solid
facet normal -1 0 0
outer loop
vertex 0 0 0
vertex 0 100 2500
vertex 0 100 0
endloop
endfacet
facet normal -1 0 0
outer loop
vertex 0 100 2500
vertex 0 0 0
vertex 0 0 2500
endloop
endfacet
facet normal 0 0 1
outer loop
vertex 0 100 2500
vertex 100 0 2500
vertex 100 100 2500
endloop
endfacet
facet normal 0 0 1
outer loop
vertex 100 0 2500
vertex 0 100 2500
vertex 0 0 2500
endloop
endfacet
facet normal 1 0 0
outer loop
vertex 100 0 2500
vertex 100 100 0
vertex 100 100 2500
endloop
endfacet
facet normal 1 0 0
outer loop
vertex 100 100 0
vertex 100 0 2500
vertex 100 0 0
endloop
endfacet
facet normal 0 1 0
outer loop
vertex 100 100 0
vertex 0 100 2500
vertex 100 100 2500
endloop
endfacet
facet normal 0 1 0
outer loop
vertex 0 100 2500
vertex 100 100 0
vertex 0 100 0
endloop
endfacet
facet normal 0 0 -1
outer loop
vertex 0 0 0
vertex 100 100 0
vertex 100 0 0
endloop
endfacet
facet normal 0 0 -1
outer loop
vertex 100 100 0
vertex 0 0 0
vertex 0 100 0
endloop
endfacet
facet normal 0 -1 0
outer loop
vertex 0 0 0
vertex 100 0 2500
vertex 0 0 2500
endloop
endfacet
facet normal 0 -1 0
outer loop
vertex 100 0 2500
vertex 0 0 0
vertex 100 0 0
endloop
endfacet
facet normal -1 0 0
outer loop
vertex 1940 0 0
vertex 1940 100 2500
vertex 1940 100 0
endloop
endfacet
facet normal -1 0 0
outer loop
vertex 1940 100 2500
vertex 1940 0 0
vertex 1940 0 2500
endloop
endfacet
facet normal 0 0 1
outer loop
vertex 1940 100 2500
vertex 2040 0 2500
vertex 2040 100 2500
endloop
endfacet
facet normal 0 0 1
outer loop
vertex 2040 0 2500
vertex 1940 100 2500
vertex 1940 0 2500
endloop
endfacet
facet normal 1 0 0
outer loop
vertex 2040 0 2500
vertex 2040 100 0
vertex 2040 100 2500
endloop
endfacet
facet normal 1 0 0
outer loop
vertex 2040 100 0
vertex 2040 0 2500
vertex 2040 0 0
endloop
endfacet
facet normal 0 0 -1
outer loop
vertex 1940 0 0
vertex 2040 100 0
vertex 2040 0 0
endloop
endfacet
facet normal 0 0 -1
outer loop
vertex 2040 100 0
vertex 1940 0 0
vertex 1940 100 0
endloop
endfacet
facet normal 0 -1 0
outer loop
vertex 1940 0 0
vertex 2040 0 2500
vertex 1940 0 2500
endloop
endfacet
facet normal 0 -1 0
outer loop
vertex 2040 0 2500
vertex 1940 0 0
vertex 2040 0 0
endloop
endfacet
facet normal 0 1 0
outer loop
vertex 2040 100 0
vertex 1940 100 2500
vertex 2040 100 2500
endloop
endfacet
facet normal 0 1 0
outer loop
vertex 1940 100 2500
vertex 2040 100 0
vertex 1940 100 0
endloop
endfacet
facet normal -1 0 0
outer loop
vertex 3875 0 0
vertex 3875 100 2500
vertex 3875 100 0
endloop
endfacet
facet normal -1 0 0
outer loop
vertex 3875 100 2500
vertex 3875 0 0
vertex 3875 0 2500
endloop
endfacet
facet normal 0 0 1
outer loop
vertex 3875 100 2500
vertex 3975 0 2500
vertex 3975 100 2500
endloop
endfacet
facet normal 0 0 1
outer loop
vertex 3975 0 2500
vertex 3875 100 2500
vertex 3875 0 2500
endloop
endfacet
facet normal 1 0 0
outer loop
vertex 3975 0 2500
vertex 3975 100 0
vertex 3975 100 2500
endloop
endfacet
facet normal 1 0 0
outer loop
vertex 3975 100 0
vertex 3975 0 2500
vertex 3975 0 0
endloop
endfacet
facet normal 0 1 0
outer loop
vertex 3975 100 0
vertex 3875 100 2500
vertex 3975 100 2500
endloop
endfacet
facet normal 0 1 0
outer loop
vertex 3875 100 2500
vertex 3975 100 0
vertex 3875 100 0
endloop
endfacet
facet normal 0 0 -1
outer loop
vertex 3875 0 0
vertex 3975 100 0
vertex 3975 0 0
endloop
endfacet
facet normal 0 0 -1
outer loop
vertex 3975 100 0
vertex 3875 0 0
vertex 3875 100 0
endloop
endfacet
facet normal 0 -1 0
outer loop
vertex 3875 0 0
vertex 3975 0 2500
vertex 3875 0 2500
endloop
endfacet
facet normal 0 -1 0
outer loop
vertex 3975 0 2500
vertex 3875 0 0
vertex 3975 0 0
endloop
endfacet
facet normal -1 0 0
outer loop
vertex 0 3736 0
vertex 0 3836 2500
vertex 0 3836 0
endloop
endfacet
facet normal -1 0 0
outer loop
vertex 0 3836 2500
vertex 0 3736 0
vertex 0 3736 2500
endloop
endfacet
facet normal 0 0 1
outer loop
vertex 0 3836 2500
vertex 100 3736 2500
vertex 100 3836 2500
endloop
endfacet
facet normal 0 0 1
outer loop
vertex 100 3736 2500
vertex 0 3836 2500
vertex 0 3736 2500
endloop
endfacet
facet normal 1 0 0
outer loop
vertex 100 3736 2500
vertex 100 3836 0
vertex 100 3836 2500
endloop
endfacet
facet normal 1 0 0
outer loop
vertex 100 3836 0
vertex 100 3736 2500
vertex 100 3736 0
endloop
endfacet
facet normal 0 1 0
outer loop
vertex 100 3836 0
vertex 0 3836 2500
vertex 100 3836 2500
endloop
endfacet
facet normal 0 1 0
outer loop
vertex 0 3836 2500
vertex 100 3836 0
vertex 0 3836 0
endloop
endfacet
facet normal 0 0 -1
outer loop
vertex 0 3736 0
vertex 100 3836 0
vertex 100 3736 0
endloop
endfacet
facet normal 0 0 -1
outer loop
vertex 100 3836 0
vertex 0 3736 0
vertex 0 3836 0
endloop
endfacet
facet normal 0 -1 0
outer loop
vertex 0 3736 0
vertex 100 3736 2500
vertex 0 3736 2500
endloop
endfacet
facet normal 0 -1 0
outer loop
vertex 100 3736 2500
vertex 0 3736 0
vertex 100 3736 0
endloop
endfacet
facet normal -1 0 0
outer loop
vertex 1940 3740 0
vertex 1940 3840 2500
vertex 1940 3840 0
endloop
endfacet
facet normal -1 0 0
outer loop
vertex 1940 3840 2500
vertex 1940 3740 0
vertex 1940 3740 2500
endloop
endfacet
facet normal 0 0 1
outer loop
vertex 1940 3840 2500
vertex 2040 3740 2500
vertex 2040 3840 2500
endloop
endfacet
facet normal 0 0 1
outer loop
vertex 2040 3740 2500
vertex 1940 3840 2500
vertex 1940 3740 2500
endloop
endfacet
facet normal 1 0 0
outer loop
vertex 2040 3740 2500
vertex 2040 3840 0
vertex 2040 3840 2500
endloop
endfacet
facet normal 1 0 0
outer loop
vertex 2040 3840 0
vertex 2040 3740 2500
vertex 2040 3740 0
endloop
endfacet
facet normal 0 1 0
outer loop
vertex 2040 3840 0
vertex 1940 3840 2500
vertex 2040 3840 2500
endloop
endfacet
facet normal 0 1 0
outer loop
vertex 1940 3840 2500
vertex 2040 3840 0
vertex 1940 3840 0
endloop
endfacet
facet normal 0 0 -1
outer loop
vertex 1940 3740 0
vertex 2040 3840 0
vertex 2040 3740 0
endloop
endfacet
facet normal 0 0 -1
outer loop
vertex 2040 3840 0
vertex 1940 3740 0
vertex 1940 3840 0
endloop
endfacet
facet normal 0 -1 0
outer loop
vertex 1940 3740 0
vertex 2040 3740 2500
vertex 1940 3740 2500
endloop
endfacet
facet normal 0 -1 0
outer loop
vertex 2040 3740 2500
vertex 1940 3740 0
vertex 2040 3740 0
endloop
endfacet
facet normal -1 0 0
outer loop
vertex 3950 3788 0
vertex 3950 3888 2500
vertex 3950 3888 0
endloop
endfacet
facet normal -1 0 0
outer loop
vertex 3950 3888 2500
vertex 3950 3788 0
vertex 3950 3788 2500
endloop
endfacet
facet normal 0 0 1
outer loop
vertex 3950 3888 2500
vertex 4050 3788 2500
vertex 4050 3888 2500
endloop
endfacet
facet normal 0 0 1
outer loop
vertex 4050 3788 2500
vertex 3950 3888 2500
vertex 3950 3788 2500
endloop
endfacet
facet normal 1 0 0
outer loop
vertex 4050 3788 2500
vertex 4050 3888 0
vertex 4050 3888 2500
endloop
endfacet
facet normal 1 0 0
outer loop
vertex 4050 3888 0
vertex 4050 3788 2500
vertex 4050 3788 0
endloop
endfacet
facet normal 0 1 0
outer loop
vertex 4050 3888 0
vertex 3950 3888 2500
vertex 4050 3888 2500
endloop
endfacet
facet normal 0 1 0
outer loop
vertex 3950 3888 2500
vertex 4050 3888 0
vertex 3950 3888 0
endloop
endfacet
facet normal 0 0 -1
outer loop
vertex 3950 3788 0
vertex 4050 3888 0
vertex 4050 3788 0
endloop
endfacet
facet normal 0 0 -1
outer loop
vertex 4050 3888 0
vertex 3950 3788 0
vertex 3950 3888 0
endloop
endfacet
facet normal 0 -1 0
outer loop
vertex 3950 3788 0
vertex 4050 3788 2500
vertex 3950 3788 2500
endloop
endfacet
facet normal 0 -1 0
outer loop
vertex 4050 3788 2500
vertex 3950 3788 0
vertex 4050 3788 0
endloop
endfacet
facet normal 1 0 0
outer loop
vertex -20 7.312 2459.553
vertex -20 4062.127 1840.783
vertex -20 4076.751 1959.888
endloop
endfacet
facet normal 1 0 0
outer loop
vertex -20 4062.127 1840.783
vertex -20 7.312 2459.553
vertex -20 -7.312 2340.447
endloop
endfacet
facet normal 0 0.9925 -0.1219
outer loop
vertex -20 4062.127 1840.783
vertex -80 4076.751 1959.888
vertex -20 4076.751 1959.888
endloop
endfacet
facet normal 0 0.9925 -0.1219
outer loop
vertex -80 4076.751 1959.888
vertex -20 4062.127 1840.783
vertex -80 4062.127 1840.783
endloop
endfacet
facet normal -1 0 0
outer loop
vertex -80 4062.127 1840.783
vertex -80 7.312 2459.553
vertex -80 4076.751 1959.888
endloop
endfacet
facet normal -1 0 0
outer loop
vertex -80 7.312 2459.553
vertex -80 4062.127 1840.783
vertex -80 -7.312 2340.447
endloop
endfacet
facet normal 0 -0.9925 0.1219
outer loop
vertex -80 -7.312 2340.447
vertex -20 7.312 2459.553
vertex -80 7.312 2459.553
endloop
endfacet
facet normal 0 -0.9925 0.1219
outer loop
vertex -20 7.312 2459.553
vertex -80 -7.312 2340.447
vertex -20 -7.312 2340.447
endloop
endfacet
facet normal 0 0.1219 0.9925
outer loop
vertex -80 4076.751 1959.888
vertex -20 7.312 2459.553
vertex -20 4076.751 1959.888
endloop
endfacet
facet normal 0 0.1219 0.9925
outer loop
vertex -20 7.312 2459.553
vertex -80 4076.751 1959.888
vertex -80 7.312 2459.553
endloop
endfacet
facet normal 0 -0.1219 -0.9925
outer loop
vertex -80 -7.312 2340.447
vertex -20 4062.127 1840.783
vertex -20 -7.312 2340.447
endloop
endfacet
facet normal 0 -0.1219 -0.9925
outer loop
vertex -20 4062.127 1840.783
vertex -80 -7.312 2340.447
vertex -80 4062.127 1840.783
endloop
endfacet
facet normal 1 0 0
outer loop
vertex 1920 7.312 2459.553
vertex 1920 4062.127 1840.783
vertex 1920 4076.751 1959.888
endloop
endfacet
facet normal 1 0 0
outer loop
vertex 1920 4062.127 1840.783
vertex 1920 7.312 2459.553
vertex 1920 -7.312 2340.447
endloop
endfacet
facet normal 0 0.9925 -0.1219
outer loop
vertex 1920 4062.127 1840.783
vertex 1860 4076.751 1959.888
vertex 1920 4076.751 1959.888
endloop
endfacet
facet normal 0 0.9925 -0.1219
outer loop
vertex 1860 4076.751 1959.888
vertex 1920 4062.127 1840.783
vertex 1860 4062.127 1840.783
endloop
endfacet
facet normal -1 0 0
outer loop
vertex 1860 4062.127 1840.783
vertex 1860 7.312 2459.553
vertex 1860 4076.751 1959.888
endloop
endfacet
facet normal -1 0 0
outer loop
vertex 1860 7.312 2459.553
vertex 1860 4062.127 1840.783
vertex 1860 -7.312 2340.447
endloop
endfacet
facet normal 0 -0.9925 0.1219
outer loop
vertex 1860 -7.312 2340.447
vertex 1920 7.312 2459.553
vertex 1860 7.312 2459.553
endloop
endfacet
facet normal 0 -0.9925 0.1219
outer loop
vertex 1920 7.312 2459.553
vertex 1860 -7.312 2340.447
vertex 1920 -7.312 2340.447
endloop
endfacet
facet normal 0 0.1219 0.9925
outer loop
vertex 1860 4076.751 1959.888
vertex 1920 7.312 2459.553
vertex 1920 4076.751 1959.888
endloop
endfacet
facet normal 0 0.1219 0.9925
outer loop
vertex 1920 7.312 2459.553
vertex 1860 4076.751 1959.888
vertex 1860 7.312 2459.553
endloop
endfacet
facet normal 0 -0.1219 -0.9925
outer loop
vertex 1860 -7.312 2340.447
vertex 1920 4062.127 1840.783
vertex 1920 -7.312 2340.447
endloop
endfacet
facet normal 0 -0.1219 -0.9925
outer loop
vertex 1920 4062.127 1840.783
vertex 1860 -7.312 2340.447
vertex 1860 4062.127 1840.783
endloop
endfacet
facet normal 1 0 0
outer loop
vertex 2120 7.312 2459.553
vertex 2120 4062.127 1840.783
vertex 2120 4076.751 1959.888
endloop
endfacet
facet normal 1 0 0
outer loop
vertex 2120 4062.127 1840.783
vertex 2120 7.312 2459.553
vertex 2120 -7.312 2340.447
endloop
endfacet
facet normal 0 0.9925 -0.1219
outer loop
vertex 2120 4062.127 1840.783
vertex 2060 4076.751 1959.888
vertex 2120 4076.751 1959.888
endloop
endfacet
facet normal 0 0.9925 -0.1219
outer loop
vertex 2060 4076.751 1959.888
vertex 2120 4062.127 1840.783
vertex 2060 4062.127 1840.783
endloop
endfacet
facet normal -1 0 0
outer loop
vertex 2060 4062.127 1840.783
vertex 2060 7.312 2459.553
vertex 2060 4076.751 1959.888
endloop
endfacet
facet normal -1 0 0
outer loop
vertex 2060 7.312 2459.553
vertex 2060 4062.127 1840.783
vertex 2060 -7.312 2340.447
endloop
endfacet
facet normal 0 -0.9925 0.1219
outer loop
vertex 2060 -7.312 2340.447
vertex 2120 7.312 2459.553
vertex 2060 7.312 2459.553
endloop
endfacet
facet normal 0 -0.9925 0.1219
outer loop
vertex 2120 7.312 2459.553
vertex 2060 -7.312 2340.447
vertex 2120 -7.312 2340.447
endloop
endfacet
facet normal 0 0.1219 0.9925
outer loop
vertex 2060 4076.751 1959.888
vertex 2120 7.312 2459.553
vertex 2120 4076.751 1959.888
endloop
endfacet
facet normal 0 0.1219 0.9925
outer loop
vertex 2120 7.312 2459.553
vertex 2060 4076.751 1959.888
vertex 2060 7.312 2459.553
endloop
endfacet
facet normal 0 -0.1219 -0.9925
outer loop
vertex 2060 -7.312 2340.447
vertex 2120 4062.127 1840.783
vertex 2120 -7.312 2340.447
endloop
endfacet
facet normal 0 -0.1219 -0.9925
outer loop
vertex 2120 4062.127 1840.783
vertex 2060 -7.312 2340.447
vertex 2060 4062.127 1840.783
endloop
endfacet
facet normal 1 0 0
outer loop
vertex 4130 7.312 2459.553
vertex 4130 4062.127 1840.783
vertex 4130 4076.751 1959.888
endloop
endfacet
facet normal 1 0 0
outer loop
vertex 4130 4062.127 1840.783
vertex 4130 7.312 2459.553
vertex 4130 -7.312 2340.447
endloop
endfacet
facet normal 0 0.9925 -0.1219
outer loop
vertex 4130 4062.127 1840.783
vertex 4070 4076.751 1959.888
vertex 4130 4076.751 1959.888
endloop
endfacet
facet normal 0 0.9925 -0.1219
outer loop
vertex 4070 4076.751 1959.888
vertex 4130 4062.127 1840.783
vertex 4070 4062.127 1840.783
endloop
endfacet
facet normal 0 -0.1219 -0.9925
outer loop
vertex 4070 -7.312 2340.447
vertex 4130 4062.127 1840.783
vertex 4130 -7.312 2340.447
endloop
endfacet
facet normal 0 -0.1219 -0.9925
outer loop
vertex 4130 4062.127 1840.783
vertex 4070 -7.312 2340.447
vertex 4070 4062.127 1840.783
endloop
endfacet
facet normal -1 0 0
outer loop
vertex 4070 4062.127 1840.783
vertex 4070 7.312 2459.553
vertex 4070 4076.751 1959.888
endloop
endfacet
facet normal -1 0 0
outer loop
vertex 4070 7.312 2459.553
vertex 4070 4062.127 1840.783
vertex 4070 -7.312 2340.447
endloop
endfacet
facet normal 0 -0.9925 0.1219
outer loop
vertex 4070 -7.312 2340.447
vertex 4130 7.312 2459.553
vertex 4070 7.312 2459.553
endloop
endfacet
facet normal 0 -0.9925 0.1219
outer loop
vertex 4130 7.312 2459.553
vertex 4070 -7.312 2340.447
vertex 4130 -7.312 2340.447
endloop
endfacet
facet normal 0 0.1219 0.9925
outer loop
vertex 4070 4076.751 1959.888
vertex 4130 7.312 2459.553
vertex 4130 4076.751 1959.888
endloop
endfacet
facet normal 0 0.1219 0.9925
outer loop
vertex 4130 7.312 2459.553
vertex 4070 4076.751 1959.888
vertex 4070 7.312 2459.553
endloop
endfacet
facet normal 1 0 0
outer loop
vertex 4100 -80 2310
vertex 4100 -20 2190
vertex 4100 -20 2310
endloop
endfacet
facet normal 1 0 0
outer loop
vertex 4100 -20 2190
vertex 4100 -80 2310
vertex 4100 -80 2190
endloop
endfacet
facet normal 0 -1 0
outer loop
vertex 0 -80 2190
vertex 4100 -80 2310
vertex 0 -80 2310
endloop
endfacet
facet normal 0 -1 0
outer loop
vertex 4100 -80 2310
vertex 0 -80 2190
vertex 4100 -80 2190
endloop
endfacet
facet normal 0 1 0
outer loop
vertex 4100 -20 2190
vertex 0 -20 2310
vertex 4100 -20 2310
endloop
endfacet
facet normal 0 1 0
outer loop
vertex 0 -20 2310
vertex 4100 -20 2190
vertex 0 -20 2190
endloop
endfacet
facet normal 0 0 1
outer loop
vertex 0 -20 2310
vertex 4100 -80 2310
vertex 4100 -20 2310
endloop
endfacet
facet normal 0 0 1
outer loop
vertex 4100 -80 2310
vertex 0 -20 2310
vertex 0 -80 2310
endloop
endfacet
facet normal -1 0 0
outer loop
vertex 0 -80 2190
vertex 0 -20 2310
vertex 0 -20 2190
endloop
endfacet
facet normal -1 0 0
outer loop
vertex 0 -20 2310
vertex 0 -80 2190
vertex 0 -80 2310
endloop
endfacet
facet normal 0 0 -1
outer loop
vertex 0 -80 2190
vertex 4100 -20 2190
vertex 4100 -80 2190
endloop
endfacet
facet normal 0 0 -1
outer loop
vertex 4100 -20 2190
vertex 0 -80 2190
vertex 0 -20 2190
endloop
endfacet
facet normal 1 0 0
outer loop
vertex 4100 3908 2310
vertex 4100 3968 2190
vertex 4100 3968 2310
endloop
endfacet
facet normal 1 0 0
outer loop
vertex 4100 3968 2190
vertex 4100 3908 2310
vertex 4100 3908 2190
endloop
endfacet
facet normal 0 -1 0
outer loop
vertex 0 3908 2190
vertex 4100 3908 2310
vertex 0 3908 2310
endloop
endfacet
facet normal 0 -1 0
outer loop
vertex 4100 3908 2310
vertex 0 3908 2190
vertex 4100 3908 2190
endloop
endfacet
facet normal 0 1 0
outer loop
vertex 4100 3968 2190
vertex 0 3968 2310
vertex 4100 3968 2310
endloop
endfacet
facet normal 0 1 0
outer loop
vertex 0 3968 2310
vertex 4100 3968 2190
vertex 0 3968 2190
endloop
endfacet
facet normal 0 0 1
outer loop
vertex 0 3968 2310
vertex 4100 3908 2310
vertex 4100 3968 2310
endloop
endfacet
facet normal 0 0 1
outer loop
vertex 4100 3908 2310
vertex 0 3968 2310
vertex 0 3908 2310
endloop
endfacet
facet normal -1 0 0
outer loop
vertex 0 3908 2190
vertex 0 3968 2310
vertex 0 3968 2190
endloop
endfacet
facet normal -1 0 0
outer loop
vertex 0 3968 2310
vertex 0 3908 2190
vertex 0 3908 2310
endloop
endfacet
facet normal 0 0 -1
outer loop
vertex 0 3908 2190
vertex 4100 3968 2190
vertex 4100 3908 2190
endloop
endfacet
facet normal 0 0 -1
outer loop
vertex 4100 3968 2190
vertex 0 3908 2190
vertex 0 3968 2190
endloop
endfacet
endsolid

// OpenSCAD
// pergola

// material
// https://www.bauhaus.info/leimbinder/leimbinder-si/p/20464729
// 10x10 = 11,50
// 6x12 = 8,70
// alternativ holzland gentil

// begriffe: pfeiler (pfosten), sparren (querbalken) und pfetten

// hints:
// balken nicht direkt bewachsenlassen, da regelmaessiges streichen notwendig ist
// pfeiler abstand zum h-traeger mindestens 1cm
// pfetten abstand mindestens 80cm

// kaufen:
// distanzhuelse, distanzscheiben
// pfostenkappen


module balken(w=10,d=10,h=250) {
    translate([0,0,h*5])
    cube([w*10,d*10,h*10], true);
}

module pfeiler() {
    balken(10,10,250);
}

module sparren_quer() {
    rotate(-90-7,[1,0,0])
    balken(6,12,410);
}

module sparren_laengs() {
    rotate(-90,[1,0,0])
    rotate(90,[0,1,0])
    balken(6,12,410);
}

// pfeiler
translate([5,5,0]*10) {
    translate([0,0,0]*10)
    pfeiler();
    translate([194,0,0]*10)
    pfeiler();
    translate([194+193.5,0,0]*10)
    pfeiler();

    translate([0,373.6,0]*10)
    pfeiler();
    translate([194,374,0]*10)
    pfeiler();
    translate([194+201,378.8,0]*10)
    pfeiler();
}

//sparren_quer
translate([-3-2,0,240]*10)
sparren_quer();
translate([194+5-5-3-2,0,240]*10)
sparren_quer();
translate([194+5-5-3-2+(2+2+10+3+3),0,240]*10)
sparren_quer();
translate([395+3+5+5+2,0,240]*10)
sparren_quer();



//sparren_laengs
translate([0,-3-2,225]*10)
sparren_laengs();
translate([0,378.8+10+3+2,225-30+30]*10)
sparren_laengs();
